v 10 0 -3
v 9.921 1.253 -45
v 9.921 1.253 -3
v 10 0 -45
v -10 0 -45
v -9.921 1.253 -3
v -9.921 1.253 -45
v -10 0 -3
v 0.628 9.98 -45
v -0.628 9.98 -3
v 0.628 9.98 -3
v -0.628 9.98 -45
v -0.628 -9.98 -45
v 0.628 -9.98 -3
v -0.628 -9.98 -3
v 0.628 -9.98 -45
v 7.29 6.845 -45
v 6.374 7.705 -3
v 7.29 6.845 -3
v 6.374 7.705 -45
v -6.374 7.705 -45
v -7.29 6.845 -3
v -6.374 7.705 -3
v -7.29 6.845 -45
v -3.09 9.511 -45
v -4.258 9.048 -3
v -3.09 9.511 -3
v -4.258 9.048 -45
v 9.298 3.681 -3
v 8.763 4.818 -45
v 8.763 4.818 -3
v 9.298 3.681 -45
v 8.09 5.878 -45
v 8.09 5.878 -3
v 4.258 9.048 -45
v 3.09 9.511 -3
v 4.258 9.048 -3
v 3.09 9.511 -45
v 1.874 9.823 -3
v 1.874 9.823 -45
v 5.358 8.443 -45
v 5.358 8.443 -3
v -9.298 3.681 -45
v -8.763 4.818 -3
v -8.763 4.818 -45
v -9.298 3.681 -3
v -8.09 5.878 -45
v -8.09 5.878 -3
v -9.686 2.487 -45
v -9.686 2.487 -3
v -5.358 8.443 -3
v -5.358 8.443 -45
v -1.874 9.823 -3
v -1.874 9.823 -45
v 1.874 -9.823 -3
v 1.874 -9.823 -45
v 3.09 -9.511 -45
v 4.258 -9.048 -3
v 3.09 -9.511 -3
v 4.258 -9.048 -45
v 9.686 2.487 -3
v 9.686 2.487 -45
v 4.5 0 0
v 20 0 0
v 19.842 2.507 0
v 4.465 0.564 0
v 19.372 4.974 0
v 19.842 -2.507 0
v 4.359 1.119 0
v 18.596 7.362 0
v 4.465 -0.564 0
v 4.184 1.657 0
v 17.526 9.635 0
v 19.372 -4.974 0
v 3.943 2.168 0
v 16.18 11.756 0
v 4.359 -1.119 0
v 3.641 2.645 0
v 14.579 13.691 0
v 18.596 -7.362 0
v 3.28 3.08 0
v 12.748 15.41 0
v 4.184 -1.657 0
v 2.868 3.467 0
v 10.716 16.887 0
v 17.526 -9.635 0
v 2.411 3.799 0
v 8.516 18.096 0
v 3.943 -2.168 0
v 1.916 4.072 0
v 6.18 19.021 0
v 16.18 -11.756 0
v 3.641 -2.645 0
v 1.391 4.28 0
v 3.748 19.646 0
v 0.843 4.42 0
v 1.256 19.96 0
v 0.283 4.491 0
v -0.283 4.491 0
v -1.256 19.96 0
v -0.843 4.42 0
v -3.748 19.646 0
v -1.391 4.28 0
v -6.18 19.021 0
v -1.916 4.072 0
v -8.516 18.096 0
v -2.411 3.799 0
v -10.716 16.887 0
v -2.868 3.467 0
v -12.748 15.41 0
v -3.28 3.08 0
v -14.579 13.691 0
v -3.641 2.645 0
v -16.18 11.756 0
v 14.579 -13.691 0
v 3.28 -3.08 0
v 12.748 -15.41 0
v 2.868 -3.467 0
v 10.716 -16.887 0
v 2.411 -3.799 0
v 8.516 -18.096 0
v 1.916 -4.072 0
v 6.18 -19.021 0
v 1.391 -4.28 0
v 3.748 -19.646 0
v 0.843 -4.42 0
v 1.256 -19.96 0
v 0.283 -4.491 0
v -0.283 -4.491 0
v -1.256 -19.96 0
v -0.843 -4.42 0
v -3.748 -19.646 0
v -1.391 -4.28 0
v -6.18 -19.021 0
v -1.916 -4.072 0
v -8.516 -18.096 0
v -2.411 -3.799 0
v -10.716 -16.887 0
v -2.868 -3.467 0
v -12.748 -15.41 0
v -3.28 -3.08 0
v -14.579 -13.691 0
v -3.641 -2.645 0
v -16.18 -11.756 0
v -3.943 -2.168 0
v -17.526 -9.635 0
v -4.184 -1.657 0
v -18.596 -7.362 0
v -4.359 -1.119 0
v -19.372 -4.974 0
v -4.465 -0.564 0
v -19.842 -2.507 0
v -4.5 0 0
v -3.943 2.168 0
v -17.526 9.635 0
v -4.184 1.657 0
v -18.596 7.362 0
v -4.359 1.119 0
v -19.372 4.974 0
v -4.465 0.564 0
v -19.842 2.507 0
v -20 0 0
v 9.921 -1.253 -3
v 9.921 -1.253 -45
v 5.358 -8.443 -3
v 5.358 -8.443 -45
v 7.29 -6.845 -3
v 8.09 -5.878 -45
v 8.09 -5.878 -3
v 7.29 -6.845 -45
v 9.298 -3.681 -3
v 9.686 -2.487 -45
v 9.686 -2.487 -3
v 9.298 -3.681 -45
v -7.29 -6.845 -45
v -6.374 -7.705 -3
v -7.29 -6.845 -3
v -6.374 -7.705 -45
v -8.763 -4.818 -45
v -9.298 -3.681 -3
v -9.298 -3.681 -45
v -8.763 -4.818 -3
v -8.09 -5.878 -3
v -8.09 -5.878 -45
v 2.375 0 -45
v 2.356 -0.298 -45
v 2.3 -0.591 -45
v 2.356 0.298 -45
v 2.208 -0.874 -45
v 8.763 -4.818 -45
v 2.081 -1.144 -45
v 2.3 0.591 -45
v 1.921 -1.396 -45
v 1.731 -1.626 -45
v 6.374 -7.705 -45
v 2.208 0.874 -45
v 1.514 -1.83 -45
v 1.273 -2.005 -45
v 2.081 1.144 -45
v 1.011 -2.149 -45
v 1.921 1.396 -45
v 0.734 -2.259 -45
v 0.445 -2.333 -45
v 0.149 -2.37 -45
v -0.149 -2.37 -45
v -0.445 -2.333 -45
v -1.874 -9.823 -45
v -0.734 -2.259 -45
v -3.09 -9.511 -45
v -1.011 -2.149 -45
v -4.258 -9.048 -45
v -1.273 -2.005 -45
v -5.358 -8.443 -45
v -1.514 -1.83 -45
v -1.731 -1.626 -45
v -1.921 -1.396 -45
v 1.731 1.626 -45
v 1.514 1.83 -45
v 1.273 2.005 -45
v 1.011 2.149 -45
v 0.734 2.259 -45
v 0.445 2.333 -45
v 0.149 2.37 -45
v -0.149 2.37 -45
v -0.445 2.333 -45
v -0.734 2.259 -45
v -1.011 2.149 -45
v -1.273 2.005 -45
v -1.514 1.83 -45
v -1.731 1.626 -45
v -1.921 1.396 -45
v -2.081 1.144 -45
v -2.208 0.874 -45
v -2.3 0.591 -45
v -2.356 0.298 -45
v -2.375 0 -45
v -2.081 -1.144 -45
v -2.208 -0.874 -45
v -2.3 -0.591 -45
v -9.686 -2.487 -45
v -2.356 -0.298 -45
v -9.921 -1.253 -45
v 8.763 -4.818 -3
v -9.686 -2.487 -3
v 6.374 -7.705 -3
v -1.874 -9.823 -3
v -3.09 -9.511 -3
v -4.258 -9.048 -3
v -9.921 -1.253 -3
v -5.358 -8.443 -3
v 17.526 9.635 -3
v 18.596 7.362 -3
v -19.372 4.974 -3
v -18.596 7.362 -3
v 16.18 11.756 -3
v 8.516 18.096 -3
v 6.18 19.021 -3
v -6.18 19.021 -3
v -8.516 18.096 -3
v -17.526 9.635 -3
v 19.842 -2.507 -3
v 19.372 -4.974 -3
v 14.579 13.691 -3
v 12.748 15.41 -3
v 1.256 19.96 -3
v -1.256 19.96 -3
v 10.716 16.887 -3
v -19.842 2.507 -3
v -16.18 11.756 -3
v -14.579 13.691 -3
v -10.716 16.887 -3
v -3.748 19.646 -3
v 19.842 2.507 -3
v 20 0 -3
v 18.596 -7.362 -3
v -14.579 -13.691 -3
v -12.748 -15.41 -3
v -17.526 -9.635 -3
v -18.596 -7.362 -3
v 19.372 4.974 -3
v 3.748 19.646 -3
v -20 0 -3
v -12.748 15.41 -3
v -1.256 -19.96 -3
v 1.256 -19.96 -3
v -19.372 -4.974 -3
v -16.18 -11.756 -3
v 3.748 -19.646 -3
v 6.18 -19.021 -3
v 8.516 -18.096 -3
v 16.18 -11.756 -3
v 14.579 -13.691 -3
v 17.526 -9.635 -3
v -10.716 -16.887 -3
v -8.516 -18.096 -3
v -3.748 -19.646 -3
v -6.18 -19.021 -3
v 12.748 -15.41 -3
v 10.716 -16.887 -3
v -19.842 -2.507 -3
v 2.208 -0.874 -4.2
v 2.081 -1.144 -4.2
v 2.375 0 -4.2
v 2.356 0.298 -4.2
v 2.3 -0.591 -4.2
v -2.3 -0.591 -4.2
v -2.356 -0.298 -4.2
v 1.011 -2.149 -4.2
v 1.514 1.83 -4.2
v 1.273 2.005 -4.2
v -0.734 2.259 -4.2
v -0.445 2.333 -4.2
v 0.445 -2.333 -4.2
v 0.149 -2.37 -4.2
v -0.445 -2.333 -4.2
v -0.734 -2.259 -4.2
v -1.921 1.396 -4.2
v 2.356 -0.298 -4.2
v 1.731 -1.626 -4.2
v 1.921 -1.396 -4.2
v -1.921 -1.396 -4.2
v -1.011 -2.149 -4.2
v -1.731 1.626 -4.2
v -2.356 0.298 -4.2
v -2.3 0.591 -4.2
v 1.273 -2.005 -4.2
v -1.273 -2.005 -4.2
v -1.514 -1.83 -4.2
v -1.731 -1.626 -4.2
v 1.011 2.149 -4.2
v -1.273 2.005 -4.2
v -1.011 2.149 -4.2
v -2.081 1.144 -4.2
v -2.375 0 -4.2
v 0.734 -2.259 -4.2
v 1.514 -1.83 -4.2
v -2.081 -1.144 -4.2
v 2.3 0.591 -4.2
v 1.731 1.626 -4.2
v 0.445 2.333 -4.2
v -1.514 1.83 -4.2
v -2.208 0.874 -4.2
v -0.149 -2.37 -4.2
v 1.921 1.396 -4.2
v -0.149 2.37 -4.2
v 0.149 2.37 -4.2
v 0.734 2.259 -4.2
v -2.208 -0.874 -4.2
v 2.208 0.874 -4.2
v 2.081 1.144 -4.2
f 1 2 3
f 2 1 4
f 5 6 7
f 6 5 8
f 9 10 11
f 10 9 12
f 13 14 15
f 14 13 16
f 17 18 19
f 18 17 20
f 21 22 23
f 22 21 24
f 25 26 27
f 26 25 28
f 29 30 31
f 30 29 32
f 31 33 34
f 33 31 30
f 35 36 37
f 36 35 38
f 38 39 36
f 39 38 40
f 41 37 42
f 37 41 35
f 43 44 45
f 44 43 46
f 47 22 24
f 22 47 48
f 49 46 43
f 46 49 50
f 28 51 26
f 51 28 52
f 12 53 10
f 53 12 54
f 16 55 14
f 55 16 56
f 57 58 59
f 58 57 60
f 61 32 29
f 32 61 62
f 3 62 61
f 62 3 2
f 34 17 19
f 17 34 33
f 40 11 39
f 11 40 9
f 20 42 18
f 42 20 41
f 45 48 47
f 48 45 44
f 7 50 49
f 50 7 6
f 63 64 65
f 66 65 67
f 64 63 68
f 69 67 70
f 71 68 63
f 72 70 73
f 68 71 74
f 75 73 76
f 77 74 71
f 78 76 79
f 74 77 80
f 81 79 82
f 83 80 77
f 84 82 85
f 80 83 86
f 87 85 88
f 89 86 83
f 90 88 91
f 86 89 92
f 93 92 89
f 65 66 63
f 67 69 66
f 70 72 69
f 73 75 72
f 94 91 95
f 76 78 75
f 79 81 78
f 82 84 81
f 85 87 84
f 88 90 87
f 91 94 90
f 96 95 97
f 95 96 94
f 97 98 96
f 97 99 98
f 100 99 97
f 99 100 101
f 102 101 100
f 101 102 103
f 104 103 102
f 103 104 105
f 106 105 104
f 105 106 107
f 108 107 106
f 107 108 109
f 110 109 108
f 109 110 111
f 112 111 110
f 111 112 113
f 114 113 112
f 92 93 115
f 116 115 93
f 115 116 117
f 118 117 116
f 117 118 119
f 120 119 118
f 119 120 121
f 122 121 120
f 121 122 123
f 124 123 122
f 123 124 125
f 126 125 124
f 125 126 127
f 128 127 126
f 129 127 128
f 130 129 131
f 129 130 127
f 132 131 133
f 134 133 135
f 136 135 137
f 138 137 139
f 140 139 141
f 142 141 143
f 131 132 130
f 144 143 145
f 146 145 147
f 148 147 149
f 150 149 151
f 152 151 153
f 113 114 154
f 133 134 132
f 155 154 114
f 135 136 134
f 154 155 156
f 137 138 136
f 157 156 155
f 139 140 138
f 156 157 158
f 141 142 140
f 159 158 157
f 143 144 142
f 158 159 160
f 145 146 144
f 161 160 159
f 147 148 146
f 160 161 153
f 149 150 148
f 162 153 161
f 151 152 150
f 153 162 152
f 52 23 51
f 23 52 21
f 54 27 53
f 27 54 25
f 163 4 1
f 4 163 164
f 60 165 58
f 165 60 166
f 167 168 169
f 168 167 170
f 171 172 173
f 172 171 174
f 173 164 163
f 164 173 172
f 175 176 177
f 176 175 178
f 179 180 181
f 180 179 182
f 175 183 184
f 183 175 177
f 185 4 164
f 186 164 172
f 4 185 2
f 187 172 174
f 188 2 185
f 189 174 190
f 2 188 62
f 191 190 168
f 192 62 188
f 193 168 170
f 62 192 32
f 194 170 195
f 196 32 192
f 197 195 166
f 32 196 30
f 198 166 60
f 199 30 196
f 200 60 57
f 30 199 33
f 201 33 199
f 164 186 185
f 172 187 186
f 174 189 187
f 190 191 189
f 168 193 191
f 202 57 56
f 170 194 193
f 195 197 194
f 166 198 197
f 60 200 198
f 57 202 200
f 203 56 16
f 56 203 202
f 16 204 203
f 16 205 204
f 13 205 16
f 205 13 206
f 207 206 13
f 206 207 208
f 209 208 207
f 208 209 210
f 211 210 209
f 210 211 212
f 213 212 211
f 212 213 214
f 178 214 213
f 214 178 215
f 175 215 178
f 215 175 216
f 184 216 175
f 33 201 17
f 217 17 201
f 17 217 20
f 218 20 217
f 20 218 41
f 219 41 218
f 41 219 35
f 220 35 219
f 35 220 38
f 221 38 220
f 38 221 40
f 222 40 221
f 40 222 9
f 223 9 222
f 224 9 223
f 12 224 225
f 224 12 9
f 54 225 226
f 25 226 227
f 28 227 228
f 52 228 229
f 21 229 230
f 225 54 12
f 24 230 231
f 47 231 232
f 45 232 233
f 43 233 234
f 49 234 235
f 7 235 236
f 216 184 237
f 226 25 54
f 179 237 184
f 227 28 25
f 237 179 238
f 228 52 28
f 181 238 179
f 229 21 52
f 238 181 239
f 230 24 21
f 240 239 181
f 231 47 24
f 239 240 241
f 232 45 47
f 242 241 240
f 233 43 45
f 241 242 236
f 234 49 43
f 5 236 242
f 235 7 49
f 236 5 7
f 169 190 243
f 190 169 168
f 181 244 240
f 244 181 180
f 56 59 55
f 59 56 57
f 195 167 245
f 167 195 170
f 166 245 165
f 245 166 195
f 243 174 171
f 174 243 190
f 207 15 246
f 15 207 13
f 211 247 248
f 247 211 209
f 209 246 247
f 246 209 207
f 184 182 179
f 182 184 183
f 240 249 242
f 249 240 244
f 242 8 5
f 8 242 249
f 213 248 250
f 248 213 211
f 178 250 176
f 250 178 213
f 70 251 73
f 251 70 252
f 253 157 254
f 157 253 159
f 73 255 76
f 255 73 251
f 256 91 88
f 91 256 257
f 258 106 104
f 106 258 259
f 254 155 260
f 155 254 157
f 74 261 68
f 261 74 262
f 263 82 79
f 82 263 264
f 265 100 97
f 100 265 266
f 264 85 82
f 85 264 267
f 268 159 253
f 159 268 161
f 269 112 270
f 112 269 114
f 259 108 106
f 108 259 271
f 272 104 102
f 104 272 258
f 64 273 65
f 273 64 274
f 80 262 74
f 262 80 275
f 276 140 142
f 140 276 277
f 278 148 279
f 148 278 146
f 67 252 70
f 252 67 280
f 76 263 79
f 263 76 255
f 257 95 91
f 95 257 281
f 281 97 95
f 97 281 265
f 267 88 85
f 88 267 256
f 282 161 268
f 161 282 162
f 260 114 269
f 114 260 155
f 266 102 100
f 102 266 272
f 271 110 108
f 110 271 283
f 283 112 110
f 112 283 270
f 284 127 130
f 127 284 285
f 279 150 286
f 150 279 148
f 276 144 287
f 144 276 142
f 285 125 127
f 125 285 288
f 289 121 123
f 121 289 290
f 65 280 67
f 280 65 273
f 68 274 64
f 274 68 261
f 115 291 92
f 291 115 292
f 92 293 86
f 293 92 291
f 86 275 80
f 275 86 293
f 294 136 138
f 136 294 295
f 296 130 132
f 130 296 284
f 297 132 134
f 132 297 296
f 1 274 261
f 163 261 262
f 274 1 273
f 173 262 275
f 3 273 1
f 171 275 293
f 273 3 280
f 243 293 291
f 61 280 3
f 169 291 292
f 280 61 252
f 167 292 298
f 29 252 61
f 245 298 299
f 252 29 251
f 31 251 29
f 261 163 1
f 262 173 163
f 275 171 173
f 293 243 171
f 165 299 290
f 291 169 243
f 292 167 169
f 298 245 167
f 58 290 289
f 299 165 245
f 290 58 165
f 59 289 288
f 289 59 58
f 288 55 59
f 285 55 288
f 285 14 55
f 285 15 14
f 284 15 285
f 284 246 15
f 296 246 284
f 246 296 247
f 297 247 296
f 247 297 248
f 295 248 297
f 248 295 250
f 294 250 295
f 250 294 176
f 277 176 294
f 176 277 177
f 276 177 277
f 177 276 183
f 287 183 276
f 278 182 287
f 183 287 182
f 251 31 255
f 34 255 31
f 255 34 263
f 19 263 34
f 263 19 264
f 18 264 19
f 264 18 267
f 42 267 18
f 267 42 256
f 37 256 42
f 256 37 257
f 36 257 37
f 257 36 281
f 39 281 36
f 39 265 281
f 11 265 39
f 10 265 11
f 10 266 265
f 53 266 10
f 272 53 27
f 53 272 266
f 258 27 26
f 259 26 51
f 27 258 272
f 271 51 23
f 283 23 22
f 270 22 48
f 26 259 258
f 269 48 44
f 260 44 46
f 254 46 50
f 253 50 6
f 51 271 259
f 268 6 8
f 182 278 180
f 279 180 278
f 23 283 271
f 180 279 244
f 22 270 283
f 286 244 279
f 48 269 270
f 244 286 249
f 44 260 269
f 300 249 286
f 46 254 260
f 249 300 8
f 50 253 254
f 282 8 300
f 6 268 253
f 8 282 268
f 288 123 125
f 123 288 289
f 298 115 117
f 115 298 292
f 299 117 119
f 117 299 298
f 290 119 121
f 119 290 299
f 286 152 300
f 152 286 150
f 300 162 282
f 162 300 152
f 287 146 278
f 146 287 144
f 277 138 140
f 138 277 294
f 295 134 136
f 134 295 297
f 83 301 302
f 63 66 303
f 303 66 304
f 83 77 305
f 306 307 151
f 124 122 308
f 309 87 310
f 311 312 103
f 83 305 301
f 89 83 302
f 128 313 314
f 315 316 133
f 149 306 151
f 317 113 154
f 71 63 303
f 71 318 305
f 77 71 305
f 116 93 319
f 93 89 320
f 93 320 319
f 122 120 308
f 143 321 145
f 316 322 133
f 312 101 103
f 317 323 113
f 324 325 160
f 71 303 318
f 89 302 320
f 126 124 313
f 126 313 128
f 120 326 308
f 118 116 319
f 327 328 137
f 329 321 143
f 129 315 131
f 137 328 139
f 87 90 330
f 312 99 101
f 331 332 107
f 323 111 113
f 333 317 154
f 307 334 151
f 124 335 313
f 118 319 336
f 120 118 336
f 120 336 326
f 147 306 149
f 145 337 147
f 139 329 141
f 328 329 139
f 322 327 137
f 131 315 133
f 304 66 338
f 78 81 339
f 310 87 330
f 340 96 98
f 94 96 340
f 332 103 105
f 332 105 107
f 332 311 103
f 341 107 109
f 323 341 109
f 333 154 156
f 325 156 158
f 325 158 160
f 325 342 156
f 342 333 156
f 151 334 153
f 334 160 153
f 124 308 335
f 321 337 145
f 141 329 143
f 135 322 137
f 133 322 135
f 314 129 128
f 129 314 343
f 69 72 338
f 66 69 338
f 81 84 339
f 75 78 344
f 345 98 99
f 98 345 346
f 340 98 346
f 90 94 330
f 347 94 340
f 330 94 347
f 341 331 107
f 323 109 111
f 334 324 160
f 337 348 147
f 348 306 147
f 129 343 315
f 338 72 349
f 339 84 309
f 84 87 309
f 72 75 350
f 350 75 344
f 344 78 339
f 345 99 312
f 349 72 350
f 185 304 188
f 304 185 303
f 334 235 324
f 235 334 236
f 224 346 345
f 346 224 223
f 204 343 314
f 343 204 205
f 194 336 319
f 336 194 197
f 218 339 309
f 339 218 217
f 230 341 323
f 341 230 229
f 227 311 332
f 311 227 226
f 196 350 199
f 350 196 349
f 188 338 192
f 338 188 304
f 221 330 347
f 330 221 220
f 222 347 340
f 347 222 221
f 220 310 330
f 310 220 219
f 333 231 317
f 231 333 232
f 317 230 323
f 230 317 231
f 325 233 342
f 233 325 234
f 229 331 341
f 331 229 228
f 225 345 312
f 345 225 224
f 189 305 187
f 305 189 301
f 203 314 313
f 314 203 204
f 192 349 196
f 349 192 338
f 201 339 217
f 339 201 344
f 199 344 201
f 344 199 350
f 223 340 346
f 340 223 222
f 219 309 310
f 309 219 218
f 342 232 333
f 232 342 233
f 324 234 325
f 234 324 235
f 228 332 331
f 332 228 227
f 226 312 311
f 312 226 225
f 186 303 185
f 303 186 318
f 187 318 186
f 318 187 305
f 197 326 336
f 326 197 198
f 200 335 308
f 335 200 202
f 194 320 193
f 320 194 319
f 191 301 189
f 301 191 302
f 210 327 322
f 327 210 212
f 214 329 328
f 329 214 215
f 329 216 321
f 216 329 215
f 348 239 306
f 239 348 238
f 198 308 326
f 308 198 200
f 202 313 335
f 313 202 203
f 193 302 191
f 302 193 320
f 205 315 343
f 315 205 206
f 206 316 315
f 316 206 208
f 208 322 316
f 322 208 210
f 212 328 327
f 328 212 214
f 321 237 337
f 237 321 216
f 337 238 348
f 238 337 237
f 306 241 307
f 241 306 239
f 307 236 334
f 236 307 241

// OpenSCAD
$fn = 50;


difference() {
	union() {
		translate(v = [0, 0, -45.0000000000]) {
			cylinder(h = 45, r = 10.0000000000);
		}
		translate(v = [0, 0, -3.0000000000]) {
			cylinder(h = 3, r = 20.0000000000);
		}
	}
	union() {
		translate(v = [0, 0, 0]) {
			rotate(a = [0, 0, 0]) {
				difference() {
					union() {
						#translate(v = [0, 0, -45.0000000000]) {
							cylinder(h = 45, r = 2.2500000000);
						}
						#translate(v = [0, 0, -4.2000000000]) {
							cylinder(h = 4.2000000000, r1 = 2.3750000000, r2 = 4.5000000000);
						}
						#translate(v = [0, 0, -45.0000000000]) {
							cylinder(h = 45, r = 2.3750000000);
						}
						#translate(v = [0, 0, -45.0000000000]) {
							cylinder(h = 45, r = 2.2500000000);
						}
					}
					union();
				}
			}
		}
	}
}
